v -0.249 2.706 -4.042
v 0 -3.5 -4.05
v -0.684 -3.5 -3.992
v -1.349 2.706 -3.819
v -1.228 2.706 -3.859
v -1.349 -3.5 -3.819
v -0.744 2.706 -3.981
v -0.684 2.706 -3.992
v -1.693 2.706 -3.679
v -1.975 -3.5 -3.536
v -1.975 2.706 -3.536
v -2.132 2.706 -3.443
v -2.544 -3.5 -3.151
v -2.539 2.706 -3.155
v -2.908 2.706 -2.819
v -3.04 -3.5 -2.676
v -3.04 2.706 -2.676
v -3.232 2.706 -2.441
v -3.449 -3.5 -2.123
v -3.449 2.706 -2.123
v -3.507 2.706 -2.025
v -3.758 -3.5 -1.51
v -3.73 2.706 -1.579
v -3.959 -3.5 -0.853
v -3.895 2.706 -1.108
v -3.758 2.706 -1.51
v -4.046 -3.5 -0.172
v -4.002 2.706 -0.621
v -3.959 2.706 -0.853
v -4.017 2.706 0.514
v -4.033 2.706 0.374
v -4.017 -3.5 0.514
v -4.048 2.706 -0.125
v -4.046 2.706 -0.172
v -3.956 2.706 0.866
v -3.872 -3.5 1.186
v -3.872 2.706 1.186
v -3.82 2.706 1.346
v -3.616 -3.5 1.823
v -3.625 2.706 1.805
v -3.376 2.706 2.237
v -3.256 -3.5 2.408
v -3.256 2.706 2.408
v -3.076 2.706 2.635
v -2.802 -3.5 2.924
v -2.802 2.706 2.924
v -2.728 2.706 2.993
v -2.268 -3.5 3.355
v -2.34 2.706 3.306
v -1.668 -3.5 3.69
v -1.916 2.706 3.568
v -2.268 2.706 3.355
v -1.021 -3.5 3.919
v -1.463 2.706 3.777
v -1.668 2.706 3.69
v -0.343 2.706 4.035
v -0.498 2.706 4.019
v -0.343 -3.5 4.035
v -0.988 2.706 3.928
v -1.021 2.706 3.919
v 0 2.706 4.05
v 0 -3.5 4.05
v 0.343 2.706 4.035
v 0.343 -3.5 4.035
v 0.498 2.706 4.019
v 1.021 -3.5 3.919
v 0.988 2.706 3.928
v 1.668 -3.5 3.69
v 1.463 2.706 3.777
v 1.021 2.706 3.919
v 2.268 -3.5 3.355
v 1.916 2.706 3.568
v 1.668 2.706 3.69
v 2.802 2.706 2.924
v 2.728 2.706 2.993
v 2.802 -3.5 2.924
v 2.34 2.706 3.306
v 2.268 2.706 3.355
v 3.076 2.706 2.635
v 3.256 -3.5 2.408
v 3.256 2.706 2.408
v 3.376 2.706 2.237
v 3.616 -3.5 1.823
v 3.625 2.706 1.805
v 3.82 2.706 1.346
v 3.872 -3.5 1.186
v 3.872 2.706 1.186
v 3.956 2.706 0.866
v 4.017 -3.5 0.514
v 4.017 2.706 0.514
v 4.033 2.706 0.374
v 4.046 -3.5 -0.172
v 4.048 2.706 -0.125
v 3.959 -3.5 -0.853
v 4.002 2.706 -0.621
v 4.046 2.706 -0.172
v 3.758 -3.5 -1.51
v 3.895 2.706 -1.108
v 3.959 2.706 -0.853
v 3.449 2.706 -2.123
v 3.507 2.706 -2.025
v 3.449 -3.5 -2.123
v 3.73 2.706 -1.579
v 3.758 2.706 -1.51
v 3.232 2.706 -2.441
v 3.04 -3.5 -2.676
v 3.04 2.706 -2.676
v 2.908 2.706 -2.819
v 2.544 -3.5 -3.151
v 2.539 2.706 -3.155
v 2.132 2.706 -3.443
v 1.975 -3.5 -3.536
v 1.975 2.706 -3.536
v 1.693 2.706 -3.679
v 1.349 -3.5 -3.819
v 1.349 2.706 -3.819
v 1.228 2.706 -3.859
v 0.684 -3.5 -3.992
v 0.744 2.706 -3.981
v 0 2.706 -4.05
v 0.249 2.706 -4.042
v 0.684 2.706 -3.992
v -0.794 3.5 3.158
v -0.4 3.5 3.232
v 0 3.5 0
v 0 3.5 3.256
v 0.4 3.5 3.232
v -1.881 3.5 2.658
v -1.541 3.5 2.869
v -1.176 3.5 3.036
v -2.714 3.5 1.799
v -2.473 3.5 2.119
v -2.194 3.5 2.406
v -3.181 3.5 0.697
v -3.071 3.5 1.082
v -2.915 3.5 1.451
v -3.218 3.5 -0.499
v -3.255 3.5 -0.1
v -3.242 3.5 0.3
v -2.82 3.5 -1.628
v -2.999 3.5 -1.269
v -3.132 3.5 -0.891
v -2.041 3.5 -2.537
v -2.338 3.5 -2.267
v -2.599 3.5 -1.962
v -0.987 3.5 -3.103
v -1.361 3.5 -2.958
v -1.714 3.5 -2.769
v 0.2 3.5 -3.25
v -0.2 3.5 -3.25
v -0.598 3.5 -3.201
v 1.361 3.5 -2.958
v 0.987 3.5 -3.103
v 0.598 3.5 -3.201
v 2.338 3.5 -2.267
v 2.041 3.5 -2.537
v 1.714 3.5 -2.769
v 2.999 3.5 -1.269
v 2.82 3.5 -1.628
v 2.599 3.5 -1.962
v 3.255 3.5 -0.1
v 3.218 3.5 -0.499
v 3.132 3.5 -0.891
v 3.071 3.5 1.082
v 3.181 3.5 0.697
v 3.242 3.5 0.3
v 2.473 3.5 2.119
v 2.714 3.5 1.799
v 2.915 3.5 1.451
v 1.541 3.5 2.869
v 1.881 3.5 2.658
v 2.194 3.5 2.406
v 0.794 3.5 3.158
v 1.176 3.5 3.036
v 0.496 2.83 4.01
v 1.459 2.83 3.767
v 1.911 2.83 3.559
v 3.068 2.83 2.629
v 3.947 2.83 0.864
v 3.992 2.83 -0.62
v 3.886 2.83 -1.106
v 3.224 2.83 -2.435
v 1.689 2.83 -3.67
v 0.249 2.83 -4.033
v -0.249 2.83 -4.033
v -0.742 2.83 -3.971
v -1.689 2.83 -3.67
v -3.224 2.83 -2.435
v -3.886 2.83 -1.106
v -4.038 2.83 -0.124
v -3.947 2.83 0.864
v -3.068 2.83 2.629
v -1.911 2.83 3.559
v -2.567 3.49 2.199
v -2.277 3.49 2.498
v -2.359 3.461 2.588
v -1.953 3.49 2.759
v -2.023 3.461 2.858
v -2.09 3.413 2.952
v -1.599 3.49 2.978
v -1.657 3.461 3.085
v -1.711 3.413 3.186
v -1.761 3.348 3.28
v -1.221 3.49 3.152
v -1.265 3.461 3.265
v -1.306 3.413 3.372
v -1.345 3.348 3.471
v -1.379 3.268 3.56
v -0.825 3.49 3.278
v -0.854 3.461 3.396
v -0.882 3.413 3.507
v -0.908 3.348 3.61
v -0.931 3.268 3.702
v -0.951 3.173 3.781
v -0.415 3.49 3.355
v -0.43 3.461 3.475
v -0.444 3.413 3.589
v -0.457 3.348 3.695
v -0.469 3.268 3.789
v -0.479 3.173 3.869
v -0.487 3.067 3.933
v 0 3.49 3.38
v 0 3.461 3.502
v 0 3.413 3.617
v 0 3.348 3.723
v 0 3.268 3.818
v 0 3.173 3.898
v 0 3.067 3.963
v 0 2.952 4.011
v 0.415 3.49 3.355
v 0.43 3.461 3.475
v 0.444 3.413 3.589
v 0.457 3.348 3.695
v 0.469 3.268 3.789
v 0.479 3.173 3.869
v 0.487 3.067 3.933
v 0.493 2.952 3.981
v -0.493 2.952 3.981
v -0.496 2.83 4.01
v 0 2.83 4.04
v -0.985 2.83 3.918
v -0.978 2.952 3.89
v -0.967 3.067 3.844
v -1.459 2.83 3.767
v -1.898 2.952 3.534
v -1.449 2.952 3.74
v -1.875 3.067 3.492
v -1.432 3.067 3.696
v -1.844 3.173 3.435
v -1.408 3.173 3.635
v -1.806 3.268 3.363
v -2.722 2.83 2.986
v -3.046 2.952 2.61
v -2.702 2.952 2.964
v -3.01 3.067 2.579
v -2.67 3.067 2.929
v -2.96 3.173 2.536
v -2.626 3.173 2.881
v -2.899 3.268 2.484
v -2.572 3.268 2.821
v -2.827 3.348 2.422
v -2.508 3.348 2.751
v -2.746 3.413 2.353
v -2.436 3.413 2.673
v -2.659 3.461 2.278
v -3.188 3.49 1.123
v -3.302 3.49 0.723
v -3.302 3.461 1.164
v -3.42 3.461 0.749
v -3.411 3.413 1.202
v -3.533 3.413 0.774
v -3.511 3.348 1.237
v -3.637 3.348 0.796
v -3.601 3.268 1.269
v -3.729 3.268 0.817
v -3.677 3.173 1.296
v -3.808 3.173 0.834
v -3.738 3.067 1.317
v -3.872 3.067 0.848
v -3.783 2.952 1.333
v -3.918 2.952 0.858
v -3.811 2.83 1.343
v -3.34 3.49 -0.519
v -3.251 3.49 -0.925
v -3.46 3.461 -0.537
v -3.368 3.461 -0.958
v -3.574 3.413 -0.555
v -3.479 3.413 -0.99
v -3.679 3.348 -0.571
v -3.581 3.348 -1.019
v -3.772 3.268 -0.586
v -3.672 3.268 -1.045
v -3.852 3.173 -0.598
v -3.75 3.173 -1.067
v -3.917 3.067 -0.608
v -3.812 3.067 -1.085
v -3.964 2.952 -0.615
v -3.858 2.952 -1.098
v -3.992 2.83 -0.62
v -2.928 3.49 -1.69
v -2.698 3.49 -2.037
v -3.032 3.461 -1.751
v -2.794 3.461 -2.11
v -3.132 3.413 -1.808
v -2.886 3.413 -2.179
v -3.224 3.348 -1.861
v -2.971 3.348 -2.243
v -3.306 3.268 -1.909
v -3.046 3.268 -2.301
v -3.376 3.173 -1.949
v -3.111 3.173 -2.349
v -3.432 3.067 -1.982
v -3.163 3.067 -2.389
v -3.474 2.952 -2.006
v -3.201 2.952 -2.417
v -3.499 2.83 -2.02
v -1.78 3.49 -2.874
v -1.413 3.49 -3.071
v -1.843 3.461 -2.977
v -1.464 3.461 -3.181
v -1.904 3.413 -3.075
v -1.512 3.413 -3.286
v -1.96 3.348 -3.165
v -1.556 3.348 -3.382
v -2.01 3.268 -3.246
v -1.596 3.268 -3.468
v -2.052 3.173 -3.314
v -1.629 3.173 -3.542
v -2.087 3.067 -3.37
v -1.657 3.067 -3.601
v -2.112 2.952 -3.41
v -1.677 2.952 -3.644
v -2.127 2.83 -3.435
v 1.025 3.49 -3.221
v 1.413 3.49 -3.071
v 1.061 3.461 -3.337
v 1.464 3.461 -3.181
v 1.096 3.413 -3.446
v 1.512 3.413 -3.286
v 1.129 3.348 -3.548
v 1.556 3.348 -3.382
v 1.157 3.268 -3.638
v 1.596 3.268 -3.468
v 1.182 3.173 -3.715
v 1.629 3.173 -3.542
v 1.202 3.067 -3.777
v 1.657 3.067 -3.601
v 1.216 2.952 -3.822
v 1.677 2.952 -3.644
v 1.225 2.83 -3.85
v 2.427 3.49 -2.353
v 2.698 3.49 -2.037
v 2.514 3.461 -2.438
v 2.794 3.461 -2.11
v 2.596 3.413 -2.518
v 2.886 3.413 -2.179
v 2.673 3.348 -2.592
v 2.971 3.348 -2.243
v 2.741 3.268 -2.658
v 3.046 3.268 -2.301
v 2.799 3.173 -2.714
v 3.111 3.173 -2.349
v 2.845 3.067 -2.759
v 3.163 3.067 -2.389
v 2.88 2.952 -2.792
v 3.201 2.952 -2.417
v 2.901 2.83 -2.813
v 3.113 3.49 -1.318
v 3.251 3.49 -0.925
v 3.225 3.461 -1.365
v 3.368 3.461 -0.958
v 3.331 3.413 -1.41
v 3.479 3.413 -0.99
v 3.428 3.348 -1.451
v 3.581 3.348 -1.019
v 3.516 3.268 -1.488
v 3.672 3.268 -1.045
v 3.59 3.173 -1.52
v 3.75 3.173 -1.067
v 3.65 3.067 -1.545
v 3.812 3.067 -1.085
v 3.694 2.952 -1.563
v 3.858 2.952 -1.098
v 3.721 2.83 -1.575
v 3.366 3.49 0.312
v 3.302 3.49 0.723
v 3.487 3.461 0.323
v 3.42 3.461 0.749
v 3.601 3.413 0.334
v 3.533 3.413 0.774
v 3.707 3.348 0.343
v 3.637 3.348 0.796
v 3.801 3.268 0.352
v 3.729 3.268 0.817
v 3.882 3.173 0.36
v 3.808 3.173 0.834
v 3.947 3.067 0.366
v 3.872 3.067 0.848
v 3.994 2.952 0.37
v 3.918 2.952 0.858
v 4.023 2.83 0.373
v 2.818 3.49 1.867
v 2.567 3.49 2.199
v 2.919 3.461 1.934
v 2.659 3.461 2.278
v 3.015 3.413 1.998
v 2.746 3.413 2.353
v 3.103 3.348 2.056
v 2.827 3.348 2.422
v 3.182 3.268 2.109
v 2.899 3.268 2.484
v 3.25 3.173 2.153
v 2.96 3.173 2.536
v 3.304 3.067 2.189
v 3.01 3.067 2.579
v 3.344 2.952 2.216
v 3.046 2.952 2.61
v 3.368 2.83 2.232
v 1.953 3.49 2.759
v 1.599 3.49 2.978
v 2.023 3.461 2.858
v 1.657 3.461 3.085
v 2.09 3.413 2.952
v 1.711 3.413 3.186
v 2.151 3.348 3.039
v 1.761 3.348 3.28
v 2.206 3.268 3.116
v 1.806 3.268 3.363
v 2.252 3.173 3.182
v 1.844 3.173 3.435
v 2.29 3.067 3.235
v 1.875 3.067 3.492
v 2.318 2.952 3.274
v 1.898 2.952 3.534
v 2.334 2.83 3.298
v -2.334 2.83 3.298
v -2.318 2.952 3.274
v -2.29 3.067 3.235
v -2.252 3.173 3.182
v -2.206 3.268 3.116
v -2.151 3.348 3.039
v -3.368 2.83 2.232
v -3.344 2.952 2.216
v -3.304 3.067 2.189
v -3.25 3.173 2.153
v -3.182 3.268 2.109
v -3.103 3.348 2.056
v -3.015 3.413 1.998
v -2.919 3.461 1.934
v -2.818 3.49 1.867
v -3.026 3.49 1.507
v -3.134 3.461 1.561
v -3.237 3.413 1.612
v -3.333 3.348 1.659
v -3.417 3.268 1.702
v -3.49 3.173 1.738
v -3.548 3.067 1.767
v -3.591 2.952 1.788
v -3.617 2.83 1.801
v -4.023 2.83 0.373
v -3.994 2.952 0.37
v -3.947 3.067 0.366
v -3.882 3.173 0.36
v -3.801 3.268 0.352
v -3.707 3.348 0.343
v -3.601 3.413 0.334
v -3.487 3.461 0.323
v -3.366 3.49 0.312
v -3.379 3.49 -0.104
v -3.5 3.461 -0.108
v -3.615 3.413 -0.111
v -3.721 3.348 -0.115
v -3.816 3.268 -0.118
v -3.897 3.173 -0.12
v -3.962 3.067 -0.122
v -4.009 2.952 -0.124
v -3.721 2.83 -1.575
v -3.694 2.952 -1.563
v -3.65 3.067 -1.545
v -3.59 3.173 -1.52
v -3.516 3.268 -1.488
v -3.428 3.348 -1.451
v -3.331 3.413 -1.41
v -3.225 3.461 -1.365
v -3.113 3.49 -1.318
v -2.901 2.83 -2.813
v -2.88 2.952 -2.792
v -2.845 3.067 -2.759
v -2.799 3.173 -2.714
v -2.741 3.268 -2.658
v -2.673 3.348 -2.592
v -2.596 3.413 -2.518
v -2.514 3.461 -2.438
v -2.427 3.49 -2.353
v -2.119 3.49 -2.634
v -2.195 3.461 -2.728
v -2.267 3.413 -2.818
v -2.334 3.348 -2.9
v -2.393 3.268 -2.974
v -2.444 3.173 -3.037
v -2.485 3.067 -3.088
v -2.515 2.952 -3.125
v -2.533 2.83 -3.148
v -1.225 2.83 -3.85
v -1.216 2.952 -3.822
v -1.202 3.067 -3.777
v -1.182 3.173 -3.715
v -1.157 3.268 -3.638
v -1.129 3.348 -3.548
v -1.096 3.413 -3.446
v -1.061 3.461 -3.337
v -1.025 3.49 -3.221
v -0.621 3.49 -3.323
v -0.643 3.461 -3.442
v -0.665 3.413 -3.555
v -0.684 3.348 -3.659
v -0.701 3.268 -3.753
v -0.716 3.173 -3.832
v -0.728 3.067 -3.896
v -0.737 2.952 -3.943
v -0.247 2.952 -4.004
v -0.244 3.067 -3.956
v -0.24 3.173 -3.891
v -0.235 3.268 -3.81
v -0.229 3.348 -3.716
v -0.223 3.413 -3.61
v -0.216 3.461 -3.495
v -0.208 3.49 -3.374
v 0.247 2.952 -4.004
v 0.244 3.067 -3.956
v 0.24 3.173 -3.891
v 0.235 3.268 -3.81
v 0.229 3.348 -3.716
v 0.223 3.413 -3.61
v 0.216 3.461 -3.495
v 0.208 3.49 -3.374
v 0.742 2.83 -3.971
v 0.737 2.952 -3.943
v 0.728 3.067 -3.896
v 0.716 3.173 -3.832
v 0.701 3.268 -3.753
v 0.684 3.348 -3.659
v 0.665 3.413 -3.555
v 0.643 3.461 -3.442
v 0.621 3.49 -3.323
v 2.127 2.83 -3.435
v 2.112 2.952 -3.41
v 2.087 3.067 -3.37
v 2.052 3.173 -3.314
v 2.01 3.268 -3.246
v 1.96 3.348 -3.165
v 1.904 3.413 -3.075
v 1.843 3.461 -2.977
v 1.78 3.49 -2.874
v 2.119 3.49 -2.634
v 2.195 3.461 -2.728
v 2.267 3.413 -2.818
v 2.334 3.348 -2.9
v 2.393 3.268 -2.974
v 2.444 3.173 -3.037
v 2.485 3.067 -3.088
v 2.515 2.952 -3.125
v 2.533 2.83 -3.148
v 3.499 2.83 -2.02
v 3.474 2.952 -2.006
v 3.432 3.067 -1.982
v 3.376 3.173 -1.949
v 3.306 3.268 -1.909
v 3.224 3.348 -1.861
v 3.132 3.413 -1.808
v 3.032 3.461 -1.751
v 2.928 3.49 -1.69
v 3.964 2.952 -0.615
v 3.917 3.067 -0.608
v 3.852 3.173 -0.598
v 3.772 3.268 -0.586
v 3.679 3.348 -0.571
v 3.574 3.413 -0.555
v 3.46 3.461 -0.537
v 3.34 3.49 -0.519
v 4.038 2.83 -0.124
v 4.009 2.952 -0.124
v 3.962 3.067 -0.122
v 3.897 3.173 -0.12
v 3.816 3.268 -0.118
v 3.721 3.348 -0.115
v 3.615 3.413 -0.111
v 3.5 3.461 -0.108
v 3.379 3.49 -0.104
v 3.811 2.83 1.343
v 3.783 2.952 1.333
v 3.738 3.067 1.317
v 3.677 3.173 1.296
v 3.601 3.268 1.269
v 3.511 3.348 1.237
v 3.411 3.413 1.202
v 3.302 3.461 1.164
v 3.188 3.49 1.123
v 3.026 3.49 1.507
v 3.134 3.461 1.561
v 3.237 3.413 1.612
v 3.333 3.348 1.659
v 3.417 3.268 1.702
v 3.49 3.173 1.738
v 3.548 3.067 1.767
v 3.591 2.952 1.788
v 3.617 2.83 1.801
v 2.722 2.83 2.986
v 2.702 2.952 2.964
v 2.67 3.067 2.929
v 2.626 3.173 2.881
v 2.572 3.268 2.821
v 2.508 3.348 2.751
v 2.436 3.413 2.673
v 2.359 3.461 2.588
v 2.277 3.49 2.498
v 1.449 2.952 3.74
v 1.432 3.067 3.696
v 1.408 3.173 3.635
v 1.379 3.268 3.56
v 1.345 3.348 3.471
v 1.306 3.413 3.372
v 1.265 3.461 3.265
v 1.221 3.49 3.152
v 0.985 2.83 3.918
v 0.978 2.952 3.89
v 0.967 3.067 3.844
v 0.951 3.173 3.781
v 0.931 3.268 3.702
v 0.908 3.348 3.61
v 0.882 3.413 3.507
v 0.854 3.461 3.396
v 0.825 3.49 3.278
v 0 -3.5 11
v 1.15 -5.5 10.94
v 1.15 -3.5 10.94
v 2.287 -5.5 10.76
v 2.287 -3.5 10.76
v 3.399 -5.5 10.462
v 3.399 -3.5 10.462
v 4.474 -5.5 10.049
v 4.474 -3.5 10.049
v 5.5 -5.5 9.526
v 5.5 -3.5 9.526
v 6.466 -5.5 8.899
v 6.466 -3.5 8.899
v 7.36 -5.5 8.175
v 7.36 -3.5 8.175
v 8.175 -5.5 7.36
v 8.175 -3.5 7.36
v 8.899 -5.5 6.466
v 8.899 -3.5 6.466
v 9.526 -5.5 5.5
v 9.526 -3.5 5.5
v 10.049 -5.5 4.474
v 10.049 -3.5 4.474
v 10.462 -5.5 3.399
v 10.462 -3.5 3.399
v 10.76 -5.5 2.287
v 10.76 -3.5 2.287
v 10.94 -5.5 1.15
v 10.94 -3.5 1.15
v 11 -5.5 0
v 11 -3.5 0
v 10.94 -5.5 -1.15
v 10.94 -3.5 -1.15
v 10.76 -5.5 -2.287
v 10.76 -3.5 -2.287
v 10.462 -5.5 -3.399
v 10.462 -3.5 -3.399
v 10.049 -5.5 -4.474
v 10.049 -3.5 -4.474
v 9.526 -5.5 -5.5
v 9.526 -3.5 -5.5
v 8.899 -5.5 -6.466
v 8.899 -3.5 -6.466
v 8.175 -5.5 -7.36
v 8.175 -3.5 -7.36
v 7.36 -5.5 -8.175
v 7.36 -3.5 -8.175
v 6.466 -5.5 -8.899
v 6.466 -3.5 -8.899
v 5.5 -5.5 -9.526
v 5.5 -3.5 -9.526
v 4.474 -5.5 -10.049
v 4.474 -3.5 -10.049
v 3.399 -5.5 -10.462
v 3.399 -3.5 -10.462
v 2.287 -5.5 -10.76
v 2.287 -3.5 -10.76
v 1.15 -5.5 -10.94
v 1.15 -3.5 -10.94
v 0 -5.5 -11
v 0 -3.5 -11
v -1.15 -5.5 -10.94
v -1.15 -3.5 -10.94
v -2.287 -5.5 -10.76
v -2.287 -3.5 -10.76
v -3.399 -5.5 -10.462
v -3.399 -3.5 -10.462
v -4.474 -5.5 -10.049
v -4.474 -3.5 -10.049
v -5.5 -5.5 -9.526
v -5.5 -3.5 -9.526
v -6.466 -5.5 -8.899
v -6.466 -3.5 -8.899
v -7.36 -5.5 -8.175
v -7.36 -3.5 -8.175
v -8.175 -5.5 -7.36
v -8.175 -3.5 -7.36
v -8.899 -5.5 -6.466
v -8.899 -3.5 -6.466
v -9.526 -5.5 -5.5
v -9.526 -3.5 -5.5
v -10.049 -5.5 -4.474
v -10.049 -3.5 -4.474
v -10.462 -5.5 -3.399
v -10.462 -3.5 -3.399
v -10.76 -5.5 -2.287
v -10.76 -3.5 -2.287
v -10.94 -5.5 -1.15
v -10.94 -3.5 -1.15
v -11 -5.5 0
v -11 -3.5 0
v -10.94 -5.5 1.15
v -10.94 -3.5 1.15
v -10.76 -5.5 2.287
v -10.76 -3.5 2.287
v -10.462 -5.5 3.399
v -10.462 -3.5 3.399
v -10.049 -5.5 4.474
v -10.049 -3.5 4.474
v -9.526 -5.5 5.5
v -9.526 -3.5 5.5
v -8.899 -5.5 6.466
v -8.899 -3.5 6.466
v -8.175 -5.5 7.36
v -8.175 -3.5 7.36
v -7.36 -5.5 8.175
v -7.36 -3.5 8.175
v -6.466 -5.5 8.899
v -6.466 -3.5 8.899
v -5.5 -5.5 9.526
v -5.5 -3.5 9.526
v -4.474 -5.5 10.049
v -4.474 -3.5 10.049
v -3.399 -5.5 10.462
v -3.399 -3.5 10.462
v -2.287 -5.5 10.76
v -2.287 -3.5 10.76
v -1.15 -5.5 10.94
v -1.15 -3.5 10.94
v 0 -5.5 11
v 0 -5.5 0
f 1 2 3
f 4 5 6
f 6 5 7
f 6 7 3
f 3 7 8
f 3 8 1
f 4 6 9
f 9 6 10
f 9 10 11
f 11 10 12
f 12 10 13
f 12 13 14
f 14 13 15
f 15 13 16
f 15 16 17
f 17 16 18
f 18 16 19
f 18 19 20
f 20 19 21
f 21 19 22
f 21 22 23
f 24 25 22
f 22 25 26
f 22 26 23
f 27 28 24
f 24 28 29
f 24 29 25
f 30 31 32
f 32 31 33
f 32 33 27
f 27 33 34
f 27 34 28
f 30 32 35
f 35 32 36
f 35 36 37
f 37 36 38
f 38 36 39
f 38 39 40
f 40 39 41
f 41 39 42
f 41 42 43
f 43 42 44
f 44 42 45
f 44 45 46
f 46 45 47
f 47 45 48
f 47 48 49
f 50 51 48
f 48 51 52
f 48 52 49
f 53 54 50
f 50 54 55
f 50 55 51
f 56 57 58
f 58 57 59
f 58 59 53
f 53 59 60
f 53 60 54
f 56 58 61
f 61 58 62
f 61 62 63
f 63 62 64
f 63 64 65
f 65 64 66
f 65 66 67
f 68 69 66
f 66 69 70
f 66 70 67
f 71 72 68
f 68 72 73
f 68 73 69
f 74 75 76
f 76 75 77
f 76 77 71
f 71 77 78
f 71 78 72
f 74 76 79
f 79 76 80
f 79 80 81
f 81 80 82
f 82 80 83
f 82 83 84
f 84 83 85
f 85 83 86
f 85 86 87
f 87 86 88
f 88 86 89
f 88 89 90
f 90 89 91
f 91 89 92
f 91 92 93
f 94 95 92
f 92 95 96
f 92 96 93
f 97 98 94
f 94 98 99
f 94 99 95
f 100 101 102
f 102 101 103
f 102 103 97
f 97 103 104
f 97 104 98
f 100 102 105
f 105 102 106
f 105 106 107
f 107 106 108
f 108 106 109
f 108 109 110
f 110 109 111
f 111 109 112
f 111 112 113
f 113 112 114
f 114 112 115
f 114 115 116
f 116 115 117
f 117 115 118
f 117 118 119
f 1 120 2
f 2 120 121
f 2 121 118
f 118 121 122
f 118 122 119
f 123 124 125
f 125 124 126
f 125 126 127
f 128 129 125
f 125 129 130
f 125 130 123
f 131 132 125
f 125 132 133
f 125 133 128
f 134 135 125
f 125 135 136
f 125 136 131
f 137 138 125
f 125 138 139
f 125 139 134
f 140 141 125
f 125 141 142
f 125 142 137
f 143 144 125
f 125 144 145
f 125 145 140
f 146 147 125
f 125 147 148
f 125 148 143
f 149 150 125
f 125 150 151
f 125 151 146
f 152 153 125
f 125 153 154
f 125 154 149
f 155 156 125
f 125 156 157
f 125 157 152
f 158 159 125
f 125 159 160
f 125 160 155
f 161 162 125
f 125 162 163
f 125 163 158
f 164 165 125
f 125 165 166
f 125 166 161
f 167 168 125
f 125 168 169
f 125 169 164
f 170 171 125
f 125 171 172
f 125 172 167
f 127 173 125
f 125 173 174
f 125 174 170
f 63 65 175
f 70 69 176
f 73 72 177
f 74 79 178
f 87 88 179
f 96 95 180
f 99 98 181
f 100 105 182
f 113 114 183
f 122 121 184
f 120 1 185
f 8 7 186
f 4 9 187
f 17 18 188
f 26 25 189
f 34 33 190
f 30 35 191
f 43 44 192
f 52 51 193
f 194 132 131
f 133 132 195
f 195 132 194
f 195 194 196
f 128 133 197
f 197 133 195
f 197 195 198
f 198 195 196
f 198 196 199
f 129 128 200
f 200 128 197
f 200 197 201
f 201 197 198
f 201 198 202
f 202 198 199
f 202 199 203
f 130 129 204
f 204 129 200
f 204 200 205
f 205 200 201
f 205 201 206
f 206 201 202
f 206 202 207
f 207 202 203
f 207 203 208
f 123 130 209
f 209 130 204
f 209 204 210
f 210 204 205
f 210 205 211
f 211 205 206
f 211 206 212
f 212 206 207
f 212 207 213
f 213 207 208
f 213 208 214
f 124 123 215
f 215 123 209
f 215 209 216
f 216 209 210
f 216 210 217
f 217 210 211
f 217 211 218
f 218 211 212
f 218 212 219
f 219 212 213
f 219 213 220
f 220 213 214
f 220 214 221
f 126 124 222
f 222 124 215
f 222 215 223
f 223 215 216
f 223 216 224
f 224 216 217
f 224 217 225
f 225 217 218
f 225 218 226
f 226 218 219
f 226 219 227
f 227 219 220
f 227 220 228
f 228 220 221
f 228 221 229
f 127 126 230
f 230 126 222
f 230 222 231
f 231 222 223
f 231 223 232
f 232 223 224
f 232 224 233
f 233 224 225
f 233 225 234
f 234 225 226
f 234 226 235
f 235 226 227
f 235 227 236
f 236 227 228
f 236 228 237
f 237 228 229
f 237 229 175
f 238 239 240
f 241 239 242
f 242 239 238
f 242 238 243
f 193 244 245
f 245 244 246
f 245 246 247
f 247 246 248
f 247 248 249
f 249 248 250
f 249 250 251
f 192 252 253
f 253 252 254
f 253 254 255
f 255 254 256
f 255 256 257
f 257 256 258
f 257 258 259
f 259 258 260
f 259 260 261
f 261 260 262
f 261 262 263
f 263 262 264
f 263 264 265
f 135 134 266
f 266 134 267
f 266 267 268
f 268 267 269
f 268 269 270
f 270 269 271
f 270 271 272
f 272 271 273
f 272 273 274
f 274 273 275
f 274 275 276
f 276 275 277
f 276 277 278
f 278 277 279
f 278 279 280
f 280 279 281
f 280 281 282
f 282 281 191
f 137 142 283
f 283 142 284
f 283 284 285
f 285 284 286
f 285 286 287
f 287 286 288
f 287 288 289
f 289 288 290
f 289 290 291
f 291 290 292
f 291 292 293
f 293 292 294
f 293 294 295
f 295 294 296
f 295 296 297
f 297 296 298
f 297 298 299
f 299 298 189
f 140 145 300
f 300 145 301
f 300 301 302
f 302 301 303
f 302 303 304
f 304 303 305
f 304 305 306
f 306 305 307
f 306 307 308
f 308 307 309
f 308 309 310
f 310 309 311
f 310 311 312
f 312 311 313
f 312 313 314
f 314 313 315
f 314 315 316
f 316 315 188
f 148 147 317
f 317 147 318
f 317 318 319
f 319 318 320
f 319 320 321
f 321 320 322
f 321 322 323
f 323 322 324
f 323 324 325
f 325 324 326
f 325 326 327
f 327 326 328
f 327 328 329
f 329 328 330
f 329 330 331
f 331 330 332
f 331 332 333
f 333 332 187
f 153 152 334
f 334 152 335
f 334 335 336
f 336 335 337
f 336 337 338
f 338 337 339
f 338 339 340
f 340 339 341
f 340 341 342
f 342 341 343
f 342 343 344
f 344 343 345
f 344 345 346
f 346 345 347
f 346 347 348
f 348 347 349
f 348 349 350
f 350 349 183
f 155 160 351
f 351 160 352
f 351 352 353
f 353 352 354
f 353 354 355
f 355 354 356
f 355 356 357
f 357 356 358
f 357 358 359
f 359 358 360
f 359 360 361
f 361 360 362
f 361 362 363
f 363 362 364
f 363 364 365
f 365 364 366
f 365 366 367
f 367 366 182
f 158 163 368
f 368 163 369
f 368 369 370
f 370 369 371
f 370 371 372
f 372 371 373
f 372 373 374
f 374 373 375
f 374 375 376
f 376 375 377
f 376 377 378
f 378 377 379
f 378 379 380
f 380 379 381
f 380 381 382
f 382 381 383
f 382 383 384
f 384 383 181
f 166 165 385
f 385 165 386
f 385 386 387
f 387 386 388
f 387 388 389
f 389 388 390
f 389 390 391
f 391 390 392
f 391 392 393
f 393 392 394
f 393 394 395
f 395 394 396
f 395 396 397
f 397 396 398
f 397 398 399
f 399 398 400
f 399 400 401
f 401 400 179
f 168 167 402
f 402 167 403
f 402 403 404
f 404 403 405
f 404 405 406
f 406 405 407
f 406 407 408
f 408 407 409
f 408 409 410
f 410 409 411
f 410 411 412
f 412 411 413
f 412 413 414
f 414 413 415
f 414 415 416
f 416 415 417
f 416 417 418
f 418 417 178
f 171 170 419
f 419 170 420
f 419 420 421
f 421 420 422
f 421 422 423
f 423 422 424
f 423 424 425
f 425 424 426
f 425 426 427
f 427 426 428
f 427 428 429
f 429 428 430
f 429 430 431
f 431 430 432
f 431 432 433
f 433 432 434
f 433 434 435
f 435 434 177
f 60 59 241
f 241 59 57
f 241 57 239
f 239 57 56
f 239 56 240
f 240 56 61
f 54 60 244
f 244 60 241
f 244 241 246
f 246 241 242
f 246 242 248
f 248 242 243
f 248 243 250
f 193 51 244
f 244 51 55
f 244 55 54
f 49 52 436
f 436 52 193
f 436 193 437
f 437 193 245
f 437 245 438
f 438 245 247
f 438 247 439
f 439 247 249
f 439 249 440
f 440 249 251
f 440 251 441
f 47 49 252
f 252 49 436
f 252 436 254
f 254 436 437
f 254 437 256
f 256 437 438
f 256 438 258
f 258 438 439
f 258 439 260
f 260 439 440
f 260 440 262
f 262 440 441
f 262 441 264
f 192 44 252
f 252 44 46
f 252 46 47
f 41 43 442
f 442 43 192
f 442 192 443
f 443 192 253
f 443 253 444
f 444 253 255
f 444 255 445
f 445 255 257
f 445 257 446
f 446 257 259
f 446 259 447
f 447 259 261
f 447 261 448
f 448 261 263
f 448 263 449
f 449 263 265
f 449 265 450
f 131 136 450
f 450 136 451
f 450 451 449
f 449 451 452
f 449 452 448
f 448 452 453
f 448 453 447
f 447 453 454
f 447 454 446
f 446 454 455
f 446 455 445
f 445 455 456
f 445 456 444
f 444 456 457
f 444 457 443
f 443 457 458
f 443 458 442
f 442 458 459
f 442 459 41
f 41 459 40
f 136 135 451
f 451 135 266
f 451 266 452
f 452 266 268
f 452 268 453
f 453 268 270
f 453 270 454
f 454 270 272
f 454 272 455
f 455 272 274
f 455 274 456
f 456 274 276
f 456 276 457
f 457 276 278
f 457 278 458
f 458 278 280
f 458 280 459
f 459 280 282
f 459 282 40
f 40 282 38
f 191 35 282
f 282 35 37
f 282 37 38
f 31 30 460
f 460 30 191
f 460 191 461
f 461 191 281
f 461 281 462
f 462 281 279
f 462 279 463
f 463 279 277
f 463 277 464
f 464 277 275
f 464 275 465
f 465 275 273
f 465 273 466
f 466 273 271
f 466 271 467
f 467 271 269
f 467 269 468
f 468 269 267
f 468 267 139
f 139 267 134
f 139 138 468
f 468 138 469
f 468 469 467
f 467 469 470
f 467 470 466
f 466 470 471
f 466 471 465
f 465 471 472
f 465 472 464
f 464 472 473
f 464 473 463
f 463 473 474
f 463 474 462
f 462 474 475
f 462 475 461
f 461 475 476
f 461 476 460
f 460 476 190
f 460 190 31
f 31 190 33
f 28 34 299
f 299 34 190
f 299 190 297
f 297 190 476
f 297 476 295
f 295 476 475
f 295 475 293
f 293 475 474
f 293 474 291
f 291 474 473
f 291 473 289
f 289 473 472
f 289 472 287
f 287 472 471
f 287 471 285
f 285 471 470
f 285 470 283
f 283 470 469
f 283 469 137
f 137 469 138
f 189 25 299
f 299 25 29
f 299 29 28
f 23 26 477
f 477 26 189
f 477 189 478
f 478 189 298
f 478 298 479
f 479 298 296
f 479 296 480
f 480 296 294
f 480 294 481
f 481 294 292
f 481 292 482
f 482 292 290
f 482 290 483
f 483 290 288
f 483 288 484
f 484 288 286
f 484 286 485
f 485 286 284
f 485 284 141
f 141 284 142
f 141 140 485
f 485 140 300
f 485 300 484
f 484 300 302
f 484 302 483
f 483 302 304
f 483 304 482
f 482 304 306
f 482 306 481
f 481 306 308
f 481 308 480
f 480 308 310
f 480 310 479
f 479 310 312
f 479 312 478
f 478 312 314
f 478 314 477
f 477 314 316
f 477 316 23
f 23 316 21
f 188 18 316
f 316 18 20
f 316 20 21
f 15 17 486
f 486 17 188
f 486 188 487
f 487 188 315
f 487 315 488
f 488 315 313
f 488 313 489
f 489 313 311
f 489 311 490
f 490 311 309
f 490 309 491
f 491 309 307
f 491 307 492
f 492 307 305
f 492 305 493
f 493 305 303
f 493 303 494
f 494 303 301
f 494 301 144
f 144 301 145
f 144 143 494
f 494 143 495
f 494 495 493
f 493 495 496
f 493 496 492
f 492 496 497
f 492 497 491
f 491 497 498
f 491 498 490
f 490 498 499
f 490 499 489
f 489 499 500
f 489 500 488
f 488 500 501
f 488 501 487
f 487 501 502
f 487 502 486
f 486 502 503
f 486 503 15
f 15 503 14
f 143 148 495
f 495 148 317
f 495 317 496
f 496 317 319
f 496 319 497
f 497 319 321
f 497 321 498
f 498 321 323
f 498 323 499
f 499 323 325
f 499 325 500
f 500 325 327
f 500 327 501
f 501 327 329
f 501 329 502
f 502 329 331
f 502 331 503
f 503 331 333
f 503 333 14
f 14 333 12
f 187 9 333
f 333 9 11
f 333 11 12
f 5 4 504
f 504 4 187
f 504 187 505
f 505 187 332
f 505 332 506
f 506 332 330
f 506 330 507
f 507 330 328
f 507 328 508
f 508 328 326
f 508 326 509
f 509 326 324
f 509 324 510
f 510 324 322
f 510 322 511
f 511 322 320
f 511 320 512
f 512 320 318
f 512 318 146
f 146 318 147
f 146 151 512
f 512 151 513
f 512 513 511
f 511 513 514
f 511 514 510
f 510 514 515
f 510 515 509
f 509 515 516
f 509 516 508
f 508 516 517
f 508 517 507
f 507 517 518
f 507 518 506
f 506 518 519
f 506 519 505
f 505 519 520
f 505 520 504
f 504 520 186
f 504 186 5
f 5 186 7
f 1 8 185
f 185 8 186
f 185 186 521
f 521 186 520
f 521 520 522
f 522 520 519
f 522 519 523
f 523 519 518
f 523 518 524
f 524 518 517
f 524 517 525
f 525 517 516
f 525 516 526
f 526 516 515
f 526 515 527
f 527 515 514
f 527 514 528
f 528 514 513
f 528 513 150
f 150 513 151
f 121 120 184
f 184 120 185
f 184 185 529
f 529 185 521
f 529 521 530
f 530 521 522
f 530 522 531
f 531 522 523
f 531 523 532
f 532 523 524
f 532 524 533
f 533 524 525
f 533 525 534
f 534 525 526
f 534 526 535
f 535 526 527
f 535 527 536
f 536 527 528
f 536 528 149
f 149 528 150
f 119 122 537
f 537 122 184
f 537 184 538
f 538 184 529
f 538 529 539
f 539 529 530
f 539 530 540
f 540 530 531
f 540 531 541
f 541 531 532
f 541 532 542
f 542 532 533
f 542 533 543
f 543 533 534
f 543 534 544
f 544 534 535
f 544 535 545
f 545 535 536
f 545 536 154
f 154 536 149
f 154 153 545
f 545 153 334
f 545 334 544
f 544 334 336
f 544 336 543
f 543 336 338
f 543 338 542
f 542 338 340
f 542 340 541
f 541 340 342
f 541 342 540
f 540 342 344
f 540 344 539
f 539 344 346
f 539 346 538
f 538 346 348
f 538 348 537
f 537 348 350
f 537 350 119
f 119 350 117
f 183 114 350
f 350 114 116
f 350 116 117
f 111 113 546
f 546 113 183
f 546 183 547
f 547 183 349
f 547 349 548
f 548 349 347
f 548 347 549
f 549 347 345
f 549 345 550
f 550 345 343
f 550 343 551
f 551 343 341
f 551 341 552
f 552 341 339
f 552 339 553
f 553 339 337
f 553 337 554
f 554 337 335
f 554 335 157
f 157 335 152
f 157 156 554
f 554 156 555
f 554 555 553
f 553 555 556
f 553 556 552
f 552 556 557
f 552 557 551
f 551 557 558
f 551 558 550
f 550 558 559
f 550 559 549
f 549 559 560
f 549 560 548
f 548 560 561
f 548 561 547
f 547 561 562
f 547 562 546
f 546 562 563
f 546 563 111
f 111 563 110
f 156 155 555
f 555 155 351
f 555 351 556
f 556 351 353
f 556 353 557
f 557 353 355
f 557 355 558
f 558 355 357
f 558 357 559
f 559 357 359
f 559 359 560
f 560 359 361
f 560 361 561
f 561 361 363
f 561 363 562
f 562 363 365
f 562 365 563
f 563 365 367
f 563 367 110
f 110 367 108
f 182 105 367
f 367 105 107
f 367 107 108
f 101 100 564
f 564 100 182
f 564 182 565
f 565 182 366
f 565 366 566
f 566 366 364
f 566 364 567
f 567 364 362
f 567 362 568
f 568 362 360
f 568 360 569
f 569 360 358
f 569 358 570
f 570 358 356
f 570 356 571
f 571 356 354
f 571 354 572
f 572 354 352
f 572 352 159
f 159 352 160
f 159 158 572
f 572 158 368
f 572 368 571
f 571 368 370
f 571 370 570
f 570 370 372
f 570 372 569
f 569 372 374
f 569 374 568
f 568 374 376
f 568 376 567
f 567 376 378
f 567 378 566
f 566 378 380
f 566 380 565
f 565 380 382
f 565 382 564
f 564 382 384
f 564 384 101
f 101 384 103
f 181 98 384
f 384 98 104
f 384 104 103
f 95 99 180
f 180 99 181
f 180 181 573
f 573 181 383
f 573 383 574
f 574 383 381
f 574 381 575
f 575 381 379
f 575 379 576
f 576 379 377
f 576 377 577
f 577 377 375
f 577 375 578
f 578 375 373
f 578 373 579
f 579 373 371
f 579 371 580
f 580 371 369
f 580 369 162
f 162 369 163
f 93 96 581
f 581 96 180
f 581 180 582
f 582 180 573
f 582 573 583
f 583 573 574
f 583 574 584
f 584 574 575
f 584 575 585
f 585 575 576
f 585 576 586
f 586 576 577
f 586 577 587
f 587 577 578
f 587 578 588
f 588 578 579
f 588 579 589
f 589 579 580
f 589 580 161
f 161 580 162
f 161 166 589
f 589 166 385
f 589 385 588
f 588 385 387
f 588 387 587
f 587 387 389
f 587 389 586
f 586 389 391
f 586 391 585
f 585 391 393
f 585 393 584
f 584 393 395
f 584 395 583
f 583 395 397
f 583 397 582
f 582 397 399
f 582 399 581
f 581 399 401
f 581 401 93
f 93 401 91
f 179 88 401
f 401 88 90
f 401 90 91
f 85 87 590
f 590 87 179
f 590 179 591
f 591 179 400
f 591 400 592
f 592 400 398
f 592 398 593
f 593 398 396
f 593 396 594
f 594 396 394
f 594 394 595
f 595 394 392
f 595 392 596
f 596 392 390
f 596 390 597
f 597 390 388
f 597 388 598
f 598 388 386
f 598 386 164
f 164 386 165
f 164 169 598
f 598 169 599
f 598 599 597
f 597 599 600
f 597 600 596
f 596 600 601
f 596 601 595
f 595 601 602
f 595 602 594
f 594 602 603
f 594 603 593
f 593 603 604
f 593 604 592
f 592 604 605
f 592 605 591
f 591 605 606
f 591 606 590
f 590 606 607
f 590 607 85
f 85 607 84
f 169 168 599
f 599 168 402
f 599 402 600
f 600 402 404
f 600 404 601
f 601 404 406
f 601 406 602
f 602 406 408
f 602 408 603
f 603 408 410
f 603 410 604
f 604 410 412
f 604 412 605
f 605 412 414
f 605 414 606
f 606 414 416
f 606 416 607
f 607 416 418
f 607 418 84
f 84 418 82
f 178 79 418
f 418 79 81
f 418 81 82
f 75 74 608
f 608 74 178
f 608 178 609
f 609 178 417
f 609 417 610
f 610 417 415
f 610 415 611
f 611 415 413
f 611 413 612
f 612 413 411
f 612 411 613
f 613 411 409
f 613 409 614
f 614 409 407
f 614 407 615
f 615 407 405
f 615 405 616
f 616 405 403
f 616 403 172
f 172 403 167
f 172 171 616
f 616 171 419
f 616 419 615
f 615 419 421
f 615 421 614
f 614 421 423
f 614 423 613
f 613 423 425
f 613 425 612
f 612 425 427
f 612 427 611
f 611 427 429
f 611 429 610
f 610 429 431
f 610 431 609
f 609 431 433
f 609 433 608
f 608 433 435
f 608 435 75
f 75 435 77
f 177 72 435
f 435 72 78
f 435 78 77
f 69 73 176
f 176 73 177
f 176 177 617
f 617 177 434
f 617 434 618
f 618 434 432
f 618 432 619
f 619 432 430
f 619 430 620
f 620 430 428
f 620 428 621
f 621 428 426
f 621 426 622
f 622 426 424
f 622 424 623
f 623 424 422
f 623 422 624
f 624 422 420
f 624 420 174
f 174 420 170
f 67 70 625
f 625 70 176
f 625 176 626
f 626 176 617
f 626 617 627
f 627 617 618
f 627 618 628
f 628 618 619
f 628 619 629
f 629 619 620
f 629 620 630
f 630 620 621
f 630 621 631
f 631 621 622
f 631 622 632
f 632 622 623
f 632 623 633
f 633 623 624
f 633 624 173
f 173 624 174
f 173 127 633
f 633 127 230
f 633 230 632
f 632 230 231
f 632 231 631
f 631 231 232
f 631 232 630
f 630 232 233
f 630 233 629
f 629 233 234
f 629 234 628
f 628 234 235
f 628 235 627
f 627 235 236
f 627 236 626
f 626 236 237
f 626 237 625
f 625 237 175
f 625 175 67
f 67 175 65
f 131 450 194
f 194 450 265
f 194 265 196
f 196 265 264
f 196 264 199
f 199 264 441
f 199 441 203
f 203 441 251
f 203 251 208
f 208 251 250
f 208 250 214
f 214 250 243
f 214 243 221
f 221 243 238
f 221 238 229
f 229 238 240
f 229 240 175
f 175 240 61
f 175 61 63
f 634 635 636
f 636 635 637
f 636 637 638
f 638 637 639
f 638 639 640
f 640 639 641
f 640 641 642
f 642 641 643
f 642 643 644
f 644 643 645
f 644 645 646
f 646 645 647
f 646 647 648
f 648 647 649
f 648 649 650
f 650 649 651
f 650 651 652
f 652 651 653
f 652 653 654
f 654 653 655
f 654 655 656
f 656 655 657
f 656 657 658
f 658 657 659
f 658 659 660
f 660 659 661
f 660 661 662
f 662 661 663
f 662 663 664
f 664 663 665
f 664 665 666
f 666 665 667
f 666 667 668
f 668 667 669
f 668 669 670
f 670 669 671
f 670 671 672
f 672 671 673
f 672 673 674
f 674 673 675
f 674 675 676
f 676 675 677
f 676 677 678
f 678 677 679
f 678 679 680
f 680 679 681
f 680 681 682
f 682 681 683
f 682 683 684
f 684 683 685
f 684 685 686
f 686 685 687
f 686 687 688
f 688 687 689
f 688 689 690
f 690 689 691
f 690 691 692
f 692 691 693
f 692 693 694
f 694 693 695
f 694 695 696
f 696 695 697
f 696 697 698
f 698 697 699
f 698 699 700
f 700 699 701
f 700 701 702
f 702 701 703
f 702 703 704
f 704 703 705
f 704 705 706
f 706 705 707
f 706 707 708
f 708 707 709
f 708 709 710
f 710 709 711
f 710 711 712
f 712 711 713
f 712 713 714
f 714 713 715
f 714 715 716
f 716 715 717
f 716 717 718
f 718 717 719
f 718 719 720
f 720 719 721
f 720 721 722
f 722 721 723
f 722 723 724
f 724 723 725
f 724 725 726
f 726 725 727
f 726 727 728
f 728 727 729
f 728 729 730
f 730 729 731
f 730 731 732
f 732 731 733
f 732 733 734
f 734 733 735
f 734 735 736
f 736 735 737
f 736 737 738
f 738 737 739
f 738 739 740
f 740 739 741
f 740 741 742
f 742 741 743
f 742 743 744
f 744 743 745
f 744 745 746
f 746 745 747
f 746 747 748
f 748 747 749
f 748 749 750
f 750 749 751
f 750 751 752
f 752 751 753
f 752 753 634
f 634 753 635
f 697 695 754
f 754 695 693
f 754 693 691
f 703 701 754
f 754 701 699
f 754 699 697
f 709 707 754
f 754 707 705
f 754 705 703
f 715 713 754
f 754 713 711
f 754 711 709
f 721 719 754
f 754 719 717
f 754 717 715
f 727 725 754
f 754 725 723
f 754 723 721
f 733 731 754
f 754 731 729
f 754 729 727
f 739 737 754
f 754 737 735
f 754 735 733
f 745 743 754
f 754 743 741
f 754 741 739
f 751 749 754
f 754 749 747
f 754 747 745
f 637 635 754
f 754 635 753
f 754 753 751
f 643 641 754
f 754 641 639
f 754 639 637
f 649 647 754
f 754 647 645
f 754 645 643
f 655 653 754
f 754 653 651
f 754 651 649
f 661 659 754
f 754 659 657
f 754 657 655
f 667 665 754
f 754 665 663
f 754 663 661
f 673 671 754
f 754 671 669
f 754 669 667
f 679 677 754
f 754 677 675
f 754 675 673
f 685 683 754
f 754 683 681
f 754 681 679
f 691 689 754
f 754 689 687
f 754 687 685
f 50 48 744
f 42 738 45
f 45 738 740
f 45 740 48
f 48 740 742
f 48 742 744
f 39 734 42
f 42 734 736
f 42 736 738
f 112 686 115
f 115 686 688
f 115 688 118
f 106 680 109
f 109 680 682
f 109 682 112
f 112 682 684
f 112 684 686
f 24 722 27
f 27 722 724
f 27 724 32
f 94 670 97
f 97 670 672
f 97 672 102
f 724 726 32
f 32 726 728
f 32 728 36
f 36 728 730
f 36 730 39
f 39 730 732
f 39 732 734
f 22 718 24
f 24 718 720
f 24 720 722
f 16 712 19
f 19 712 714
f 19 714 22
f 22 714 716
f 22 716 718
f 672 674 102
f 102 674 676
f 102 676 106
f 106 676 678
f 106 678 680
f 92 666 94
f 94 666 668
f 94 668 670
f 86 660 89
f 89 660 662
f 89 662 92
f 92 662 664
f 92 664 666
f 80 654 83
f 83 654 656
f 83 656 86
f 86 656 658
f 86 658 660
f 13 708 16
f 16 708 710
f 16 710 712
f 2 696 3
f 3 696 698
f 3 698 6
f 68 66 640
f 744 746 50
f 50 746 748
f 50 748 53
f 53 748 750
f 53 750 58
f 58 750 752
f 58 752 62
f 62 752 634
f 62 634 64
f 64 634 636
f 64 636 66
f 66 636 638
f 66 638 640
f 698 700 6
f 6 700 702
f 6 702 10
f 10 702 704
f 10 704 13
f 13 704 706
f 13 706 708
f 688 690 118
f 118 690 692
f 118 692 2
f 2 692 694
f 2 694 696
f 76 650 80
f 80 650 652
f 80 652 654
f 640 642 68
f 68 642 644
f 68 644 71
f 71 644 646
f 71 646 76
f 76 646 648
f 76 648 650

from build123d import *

# Parameters (mm, degrees)
SKETCH1_R           = 4.05
BOSS_EXTRUDE1_DEPTH = 3.5
FILLET1_R           = 0.79375
SKETCH2_R           = 11
BOSS_EXTRUDE2_DEPTH = 2


with BuildPart() as part:
    # Sketch1 → Boss-Extrude1 (new body, symmetric)
    with BuildSketch(Plane(origin=(0, 0, 0), x_dir=(1, 0, 0), z_dir=(0, 1, 0))):
        Circle(SKETCH1_R)
    extrude(amount=BOSS_EXTRUDE1_DEPTH, both=True)

    # Fillet1
    fillet1_edges = [part.edges().sort_by_distance(p)[0] for p in [
        (-4.05, 3.5, 0),
    ]]
    fillet(fillet1_edges, radius=FILLET1_R)

    # Sketch2 → Boss-Extrude2 (add)
    with BuildSketch(Plane.XZ.offset(3.5)):
        Circle(SKETCH2_R)
    extrude(amount=BOSS_EXTRUDE2_DEPTH)


solid = part.part
